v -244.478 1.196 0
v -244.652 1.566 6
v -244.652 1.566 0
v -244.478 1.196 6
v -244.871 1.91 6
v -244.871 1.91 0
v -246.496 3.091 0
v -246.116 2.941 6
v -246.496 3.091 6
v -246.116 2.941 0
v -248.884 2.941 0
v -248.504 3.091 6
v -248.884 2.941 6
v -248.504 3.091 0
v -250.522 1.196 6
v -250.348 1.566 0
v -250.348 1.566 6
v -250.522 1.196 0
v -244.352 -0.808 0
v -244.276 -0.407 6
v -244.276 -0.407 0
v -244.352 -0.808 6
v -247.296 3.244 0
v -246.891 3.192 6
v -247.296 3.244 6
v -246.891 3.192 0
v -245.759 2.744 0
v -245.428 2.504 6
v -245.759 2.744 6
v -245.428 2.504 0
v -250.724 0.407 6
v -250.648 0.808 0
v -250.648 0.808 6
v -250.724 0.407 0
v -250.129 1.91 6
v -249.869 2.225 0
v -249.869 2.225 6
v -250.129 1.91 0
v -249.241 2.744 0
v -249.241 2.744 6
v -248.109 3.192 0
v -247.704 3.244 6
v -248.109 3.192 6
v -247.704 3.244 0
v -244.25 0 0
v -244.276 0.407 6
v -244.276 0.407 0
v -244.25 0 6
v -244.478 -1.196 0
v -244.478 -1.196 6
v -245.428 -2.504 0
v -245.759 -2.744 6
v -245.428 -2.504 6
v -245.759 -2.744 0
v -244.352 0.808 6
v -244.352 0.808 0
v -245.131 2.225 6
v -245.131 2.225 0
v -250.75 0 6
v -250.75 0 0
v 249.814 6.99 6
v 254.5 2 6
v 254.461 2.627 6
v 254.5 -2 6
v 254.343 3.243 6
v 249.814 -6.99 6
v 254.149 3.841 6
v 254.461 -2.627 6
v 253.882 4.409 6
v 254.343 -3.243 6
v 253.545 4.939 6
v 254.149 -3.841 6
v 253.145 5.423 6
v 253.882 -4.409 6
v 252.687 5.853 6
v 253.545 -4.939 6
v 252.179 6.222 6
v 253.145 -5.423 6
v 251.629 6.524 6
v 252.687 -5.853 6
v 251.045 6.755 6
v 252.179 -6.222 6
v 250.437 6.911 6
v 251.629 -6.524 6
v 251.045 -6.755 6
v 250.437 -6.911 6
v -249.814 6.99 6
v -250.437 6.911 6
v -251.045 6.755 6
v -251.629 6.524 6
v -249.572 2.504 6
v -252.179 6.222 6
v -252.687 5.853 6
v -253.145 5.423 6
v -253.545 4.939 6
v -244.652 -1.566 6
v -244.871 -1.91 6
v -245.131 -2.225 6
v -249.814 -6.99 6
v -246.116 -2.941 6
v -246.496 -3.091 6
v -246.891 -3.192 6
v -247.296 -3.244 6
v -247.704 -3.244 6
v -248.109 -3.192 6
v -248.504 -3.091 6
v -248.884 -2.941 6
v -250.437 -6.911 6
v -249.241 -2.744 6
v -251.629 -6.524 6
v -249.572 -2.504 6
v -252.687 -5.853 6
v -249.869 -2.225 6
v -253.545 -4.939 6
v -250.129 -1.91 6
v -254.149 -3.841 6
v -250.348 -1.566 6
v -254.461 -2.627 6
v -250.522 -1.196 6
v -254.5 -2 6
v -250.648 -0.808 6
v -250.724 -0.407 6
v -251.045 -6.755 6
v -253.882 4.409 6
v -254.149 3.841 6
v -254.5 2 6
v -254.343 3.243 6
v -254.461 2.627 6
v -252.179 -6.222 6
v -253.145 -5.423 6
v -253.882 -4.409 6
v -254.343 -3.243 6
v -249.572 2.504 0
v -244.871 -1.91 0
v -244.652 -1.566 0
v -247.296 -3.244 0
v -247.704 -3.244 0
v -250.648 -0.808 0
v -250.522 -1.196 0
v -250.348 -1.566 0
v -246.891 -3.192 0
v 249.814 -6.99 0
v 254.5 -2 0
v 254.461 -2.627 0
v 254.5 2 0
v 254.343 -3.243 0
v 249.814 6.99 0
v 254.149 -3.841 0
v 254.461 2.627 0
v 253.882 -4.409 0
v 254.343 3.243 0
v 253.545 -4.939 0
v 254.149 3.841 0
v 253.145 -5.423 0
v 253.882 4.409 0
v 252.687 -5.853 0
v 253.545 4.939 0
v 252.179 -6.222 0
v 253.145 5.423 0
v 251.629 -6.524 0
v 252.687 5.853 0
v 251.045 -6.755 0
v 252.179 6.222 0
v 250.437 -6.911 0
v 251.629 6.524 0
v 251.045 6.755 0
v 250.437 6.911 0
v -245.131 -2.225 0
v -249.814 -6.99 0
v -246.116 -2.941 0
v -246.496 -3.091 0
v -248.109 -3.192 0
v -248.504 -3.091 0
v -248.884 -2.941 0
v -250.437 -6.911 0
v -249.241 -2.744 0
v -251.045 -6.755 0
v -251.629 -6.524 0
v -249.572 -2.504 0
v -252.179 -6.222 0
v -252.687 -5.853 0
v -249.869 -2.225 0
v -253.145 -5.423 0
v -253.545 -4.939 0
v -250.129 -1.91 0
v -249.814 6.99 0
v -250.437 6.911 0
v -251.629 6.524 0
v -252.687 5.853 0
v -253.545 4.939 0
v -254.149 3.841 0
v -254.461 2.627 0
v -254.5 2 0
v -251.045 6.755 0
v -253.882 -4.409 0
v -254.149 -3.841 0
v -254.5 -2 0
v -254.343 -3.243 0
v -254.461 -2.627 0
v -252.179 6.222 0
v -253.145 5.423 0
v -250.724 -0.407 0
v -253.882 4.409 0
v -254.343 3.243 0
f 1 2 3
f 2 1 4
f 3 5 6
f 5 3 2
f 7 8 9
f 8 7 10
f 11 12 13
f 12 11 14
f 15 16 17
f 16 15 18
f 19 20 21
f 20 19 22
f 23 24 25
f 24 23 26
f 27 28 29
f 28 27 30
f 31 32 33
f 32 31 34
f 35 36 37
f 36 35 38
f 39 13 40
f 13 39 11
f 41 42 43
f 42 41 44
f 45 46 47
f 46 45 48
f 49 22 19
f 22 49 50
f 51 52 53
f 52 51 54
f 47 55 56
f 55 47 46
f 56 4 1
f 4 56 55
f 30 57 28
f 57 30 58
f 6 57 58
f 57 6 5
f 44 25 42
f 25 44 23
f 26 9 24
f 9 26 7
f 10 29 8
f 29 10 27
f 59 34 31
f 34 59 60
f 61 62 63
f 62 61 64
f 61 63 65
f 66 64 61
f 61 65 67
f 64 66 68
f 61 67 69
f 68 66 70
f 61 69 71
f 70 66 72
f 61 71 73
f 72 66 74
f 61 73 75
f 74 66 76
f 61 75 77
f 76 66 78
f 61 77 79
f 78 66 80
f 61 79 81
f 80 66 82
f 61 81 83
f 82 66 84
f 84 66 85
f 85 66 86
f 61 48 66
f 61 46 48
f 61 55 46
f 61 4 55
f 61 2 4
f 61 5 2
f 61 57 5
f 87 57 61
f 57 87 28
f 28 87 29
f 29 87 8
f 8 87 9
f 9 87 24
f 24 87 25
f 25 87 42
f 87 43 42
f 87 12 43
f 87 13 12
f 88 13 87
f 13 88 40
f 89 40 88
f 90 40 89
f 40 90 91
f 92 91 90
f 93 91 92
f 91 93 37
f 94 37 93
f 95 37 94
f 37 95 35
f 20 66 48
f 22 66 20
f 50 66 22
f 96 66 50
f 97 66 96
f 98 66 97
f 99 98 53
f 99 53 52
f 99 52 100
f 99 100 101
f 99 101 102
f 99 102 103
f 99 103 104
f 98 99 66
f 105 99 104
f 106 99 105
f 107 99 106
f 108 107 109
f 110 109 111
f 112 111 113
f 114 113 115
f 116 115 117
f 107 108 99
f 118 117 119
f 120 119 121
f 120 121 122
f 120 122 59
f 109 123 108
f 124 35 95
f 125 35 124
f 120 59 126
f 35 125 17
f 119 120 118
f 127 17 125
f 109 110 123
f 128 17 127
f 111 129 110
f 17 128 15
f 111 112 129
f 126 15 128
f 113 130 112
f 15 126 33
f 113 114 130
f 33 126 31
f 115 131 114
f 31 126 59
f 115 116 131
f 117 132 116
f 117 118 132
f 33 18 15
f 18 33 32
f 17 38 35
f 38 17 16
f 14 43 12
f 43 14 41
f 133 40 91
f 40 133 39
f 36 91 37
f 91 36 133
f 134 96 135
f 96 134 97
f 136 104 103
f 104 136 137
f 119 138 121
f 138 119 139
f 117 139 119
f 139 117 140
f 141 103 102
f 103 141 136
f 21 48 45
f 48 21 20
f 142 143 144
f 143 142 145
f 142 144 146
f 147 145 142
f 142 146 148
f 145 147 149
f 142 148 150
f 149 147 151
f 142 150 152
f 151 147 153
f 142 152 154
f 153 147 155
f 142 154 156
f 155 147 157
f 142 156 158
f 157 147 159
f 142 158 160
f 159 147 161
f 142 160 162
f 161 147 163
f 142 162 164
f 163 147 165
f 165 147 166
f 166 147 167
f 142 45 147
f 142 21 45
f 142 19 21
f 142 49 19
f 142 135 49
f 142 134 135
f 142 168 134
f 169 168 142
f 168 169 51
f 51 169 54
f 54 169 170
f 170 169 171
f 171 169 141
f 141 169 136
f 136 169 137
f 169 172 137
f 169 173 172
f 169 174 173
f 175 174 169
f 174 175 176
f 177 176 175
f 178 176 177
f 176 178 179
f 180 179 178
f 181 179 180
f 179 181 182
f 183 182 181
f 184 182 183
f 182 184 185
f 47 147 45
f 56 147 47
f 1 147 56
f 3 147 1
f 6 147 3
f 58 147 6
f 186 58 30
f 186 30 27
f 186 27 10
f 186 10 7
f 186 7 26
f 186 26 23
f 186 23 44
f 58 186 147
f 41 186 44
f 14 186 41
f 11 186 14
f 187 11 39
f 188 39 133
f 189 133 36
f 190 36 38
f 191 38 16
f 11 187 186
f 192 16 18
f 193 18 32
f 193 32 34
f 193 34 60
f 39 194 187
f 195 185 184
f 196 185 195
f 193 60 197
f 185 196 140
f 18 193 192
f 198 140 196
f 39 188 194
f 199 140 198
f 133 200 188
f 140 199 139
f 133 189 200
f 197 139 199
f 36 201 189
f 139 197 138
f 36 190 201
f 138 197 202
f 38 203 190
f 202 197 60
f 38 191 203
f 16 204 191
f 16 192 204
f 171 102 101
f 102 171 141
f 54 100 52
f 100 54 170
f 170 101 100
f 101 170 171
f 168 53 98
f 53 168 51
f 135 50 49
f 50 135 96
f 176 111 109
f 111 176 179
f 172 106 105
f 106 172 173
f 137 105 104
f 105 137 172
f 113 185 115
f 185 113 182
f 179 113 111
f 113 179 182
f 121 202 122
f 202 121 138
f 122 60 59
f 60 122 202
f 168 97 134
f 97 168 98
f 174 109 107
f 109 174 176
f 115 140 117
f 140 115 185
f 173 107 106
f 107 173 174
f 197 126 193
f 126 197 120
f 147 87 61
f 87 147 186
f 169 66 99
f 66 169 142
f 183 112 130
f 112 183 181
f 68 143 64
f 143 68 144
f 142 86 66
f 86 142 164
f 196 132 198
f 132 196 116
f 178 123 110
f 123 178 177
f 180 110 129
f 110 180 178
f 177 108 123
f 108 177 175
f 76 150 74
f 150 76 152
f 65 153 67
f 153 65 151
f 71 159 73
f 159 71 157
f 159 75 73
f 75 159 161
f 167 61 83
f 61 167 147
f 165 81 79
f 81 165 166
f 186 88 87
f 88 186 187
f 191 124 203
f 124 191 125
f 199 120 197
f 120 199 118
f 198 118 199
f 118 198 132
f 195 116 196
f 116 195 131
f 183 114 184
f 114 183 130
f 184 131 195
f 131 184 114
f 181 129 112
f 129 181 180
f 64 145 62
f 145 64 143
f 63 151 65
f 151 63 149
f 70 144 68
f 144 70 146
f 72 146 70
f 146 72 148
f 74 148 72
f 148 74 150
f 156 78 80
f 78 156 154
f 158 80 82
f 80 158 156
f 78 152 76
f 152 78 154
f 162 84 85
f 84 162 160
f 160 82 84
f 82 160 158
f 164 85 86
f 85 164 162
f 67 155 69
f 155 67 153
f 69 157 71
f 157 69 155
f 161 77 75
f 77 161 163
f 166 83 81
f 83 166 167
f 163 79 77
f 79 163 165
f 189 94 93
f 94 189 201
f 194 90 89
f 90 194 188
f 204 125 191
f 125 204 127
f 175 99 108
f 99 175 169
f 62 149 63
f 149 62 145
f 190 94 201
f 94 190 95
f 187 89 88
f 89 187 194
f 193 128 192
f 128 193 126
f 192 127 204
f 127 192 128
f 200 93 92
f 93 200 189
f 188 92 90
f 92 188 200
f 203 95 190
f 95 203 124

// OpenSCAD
$fn = 50;


difference() {
	union() {
		hull() {
			translate(v = [-249.5000000000, 2.0000000000, 0]) {
				cylinder(h = 6, r = 5);
			}
			translate(v = [249.5000000000, 2.0000000000, 0]) {
				cylinder(h = 6, r = 5);
			}
			translate(v = [-249.5000000000, -2.0000000000, 0]) {
				cylinder(h = 6, r = 5);
			}
			translate(v = [249.5000000000, -2.0000000000, 0]) {
				cylinder(h = 6, r = 5);
			}
		}
	}
	union() {
		translate(v = [-247.5000000000, 0.0000000000, 0]) {
			cylinder(h = 6, r = 3.2500000000);
		}
		translate(v = [-247.5000000000, 0.0000000000, 0]) {
			cylinder(h = 6, r = 1.8000000000);
		}
		translate(v = [-247.5000000000, 0.0000000000, 0]) {
			cylinder(h = 6, r = 1.8000000000);
		}
		translate(v = [-247.5000000000, 0.0000000000, 0]) {
			cylinder(h = 6, r = 1.8000000000);
		}
	}
}
